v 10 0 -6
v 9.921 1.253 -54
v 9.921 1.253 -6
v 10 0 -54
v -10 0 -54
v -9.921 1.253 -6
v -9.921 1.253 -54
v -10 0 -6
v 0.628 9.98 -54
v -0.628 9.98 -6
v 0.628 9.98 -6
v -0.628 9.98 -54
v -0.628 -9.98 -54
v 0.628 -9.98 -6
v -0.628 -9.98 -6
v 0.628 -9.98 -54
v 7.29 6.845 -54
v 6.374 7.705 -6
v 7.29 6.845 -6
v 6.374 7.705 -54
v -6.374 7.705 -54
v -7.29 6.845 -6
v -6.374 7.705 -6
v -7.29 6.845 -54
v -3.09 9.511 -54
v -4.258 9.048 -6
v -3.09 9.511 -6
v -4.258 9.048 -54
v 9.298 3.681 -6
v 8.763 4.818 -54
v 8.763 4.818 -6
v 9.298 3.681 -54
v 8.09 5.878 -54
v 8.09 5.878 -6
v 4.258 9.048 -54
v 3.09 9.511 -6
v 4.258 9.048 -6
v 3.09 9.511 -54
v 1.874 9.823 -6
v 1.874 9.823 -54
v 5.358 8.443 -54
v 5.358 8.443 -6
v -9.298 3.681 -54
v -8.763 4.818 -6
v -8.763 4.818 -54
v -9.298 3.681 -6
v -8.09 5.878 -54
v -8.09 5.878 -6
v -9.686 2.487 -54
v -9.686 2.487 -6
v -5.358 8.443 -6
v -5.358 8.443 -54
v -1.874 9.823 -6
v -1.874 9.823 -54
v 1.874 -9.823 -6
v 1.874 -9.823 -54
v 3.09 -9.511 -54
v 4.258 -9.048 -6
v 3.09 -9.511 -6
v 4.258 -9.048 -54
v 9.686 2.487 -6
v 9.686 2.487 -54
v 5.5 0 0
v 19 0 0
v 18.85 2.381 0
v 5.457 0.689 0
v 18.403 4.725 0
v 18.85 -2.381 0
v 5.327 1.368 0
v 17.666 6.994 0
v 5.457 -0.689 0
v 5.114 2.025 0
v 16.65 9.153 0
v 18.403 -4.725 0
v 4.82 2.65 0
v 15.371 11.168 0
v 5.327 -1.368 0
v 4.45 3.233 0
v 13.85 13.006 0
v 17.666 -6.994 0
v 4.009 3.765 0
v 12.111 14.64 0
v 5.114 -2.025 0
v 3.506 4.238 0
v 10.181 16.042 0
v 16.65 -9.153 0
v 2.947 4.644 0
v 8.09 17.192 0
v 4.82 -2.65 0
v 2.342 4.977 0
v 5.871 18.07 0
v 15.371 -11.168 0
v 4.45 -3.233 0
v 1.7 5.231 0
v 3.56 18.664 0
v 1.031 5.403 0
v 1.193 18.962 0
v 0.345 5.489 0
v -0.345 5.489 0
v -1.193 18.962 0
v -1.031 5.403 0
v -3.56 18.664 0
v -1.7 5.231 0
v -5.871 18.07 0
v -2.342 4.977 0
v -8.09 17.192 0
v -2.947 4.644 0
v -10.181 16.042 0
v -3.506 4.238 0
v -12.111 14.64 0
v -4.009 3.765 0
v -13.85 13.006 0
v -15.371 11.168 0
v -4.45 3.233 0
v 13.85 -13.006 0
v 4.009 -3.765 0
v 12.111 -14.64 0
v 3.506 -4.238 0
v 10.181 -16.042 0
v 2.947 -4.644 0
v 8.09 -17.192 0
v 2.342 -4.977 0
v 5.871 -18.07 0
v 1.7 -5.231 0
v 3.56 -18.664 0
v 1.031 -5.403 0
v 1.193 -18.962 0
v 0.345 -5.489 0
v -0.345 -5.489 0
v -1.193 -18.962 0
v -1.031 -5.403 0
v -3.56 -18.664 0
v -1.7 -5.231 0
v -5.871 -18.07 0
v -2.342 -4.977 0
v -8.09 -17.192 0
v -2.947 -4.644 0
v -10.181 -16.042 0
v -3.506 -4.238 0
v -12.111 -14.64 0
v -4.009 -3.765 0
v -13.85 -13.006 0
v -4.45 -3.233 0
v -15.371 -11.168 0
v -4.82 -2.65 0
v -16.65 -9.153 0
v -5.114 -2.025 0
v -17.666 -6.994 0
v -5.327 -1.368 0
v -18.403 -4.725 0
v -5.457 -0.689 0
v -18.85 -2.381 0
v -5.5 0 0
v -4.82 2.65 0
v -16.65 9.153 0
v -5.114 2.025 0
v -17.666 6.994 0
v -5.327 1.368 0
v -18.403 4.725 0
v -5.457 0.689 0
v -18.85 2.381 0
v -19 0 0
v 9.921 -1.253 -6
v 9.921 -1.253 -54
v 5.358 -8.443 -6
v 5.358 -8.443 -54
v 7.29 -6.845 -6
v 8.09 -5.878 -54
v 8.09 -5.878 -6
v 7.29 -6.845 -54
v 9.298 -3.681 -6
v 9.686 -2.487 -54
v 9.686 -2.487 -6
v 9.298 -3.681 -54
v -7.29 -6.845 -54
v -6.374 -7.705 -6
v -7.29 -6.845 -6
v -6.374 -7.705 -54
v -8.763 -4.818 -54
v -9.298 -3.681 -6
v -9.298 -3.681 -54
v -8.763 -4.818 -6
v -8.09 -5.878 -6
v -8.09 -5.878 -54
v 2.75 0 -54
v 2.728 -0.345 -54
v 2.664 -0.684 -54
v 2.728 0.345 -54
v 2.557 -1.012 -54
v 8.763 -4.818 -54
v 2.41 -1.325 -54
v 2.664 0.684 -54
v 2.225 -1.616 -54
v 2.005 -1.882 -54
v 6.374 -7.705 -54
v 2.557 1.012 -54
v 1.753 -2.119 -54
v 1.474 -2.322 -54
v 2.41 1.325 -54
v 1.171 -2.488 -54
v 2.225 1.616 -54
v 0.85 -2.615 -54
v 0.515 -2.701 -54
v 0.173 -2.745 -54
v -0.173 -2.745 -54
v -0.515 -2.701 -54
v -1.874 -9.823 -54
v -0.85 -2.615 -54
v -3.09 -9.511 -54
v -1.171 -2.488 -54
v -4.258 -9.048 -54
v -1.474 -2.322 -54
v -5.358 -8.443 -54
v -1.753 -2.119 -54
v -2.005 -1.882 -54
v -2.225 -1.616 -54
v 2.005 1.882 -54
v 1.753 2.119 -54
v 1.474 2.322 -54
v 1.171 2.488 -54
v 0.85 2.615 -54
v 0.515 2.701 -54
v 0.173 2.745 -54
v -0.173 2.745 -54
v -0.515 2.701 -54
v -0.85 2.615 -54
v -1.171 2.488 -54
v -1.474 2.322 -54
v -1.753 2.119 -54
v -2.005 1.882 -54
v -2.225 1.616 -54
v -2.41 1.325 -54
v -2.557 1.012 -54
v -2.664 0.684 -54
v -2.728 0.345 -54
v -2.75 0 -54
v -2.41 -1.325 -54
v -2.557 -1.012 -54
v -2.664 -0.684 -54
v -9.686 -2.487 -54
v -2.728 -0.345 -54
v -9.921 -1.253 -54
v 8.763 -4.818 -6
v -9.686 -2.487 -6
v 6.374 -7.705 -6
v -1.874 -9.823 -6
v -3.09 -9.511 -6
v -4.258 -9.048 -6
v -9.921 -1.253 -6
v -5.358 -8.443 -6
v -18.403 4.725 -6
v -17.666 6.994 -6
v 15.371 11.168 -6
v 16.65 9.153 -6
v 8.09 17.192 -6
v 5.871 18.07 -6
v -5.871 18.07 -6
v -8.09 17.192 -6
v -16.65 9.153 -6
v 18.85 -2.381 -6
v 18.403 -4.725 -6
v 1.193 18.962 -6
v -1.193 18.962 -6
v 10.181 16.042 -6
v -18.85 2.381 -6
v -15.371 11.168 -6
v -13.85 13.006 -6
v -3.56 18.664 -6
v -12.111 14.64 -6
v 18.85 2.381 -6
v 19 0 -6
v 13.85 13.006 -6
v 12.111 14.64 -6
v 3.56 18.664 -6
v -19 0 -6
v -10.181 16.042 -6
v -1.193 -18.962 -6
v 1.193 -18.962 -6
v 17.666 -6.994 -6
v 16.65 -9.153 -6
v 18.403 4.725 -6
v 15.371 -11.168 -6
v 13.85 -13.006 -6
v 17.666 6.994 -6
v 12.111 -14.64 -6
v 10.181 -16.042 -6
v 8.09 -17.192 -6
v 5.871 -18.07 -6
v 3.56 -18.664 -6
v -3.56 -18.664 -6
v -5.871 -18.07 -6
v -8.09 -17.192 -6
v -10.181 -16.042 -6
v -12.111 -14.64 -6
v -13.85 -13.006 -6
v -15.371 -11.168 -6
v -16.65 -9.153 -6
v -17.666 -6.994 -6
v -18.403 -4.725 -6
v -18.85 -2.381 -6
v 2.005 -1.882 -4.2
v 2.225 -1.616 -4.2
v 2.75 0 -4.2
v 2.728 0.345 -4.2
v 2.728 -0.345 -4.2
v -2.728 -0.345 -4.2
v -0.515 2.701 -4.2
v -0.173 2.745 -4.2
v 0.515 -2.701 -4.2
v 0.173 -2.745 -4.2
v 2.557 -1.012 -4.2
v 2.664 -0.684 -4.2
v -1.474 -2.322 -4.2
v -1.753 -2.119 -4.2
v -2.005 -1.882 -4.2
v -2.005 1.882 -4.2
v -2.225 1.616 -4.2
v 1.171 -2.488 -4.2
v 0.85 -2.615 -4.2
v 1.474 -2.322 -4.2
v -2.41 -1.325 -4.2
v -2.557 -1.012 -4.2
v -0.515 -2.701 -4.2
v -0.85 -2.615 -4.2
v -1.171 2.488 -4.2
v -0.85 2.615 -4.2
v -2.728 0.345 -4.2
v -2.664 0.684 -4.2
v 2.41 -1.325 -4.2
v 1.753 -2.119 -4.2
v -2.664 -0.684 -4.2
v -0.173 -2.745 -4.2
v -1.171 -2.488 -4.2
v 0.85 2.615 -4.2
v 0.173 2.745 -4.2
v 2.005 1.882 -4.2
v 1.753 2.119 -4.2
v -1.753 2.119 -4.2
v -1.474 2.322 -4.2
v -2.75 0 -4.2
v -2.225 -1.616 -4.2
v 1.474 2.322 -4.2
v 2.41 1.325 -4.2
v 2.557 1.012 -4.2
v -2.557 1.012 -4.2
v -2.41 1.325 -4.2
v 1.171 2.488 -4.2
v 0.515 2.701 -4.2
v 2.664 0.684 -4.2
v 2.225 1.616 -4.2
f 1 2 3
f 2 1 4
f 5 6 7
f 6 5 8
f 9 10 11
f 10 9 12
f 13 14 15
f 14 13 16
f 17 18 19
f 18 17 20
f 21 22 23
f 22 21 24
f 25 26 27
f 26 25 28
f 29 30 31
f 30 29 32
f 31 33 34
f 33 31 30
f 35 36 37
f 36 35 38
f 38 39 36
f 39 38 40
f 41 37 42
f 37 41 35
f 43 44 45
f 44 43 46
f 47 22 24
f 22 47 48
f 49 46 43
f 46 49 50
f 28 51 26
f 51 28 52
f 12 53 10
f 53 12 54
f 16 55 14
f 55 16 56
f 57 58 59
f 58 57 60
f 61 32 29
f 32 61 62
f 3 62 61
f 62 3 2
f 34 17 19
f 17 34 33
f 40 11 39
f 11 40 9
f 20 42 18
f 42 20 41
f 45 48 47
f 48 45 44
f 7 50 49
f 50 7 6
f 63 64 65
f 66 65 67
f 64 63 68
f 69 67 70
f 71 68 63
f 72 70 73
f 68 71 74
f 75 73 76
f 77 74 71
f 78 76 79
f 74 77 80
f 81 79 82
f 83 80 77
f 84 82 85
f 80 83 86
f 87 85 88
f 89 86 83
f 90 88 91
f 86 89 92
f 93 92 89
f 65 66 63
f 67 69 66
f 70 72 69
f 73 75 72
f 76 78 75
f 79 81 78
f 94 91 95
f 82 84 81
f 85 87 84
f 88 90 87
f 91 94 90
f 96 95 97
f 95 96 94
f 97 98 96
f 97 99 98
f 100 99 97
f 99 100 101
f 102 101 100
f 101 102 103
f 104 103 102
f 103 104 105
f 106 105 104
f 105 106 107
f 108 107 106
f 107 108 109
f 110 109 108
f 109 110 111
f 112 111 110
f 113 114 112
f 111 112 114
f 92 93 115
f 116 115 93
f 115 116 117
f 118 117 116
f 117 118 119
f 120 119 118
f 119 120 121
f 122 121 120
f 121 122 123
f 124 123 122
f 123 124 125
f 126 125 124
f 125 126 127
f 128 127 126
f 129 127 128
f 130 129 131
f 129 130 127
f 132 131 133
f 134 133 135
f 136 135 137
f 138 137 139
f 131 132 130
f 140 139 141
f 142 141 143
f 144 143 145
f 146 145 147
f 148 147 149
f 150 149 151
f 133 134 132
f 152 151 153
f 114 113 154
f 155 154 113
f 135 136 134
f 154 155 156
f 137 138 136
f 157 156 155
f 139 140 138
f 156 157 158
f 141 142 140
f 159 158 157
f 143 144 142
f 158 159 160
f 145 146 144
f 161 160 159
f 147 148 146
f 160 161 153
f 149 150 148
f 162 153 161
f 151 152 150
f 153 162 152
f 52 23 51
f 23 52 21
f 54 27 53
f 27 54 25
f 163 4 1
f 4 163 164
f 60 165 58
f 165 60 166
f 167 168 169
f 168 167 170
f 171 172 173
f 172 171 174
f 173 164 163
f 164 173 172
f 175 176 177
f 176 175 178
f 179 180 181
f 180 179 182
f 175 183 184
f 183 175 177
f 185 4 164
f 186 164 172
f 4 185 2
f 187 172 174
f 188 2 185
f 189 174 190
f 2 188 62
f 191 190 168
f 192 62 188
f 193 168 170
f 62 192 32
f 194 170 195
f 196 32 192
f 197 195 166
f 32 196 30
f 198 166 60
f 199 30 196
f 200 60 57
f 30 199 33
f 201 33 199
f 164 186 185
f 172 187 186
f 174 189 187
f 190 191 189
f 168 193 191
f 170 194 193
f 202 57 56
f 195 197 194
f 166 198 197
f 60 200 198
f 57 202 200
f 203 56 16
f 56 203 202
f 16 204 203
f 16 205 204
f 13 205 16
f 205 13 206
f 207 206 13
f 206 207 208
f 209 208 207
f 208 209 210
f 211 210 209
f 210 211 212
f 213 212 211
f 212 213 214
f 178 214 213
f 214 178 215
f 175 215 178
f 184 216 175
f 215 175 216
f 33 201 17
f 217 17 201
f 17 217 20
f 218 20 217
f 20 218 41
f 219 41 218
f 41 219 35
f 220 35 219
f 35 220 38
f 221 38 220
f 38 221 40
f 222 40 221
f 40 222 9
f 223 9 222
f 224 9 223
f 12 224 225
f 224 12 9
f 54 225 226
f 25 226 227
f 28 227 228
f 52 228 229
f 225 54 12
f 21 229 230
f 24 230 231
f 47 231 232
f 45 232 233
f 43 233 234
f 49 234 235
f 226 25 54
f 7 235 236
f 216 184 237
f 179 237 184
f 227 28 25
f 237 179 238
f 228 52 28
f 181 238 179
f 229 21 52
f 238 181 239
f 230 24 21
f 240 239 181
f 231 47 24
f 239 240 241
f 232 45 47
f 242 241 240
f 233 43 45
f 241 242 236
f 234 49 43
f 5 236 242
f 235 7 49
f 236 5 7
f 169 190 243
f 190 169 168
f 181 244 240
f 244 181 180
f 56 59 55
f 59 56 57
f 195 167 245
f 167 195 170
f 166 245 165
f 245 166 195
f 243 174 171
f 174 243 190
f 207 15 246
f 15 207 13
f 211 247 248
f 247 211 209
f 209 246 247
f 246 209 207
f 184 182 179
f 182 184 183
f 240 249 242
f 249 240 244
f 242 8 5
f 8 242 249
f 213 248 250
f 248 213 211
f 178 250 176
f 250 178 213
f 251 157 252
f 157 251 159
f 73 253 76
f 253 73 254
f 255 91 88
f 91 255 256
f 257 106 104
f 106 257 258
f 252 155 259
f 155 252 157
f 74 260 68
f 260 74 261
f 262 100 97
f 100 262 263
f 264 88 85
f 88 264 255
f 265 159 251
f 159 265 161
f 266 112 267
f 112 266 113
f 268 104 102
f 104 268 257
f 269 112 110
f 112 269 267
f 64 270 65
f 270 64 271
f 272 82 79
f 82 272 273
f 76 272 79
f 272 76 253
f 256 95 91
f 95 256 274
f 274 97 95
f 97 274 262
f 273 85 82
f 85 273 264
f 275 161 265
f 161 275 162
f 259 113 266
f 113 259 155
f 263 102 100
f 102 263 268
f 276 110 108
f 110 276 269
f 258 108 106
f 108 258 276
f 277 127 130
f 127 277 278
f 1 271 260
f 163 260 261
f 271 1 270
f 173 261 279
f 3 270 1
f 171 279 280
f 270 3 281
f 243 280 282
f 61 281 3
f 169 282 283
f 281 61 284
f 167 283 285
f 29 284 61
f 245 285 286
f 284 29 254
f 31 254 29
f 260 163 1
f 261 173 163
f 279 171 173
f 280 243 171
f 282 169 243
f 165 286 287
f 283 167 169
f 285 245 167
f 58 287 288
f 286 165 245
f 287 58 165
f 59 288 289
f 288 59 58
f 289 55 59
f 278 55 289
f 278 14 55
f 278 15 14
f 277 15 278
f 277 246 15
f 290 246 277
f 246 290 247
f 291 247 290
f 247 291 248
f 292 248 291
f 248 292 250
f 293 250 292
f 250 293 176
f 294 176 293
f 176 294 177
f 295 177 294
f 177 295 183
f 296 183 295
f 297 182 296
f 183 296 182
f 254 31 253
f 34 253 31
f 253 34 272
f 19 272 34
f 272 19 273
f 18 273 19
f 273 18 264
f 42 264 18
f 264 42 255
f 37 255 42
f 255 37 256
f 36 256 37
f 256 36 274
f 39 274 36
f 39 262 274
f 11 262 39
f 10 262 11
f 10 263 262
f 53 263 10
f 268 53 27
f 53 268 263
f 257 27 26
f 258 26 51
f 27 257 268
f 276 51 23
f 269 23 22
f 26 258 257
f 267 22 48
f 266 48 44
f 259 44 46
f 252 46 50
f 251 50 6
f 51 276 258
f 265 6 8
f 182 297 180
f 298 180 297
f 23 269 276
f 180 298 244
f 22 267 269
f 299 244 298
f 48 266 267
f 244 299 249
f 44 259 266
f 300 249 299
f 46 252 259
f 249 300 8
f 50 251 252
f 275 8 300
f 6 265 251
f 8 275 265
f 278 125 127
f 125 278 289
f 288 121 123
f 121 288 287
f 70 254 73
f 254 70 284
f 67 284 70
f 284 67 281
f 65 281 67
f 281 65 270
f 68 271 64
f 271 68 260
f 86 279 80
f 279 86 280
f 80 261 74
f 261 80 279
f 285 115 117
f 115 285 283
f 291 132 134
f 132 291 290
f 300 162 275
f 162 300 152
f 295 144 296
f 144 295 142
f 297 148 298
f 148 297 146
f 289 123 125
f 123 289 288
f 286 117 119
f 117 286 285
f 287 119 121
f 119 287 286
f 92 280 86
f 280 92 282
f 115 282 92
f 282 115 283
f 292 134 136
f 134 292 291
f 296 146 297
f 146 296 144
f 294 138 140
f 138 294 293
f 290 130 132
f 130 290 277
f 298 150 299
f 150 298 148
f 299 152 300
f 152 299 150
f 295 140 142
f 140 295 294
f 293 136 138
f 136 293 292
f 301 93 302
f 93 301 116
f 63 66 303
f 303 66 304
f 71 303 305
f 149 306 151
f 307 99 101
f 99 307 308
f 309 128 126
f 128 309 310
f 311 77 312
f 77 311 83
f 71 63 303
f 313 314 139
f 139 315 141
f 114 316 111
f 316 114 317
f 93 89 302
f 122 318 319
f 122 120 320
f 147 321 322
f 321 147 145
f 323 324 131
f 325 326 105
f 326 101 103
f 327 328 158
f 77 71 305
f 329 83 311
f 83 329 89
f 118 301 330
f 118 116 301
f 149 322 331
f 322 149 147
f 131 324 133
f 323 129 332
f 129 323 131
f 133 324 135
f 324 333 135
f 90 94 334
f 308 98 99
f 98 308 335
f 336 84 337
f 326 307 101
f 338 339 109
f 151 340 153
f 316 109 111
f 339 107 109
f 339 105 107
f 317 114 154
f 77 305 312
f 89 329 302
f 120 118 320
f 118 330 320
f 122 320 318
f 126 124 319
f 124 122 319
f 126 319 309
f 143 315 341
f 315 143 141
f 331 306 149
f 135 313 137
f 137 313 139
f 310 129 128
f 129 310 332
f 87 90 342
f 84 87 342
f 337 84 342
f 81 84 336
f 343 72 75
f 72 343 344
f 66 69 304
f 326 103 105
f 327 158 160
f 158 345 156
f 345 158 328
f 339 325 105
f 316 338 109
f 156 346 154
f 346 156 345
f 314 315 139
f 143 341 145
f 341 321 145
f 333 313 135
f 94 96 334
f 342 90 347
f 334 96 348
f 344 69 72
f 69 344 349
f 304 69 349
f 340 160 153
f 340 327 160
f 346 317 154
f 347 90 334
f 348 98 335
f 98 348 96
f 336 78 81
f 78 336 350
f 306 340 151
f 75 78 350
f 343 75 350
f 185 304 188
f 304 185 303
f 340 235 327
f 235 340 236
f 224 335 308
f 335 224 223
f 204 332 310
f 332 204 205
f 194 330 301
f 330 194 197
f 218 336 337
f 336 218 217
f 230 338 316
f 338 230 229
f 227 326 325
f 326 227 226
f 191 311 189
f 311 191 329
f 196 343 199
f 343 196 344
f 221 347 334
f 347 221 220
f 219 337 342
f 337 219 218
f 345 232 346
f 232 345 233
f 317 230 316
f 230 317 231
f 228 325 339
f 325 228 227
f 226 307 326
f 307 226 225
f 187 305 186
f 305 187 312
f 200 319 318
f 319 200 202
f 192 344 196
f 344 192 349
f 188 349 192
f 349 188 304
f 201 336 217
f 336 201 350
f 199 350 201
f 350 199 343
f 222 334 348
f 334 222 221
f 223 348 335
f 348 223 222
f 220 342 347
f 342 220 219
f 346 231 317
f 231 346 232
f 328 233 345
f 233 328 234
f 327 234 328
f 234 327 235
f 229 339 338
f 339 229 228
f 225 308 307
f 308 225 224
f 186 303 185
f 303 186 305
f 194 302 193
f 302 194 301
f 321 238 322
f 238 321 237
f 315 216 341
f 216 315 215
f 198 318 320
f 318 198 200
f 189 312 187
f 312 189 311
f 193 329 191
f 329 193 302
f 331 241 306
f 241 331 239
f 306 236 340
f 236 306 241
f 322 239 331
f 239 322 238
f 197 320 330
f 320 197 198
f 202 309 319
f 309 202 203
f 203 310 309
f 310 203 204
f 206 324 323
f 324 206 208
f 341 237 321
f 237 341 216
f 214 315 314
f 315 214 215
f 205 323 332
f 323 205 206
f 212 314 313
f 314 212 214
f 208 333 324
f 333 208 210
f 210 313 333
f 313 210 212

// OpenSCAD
$fn = 50;


difference() {
	union() {
		translate(v = [0, 0, -54.0000000000]) {
			cylinder(h = 54, r = 10.0000000000);
		}
		translate(v = [0, 0, -6.0000000000]) {
			cylinder(h = 6, r = 19.0000000000);
		}
	}
	union() {
		translate(v = [0, 0, 0]) {
			rotate(a = [0, 0, 0]) {
				difference() {
					union() {
						#translate(v = [0, 0, -54.0000000000]) {
							cylinder(h = 54, r = 2.2500000000);
						}
						#translate(v = [0, 0, -4.2000000000]) {
							cylinder(h = 4.2000000000, r1 = 2.7500000000, r2 = 5.5000000000);
						}
						#translate(v = [0, 0, -54.0000000000]) {
							cylinder(h = 54, r = 2.7500000000);
						}
						#translate(v = [0, 0, -54.0000000000]) {
							cylinder(h = 54, r = 2.2500000000);
						}
					}
					union();
				}
			}
		}
	}
}
